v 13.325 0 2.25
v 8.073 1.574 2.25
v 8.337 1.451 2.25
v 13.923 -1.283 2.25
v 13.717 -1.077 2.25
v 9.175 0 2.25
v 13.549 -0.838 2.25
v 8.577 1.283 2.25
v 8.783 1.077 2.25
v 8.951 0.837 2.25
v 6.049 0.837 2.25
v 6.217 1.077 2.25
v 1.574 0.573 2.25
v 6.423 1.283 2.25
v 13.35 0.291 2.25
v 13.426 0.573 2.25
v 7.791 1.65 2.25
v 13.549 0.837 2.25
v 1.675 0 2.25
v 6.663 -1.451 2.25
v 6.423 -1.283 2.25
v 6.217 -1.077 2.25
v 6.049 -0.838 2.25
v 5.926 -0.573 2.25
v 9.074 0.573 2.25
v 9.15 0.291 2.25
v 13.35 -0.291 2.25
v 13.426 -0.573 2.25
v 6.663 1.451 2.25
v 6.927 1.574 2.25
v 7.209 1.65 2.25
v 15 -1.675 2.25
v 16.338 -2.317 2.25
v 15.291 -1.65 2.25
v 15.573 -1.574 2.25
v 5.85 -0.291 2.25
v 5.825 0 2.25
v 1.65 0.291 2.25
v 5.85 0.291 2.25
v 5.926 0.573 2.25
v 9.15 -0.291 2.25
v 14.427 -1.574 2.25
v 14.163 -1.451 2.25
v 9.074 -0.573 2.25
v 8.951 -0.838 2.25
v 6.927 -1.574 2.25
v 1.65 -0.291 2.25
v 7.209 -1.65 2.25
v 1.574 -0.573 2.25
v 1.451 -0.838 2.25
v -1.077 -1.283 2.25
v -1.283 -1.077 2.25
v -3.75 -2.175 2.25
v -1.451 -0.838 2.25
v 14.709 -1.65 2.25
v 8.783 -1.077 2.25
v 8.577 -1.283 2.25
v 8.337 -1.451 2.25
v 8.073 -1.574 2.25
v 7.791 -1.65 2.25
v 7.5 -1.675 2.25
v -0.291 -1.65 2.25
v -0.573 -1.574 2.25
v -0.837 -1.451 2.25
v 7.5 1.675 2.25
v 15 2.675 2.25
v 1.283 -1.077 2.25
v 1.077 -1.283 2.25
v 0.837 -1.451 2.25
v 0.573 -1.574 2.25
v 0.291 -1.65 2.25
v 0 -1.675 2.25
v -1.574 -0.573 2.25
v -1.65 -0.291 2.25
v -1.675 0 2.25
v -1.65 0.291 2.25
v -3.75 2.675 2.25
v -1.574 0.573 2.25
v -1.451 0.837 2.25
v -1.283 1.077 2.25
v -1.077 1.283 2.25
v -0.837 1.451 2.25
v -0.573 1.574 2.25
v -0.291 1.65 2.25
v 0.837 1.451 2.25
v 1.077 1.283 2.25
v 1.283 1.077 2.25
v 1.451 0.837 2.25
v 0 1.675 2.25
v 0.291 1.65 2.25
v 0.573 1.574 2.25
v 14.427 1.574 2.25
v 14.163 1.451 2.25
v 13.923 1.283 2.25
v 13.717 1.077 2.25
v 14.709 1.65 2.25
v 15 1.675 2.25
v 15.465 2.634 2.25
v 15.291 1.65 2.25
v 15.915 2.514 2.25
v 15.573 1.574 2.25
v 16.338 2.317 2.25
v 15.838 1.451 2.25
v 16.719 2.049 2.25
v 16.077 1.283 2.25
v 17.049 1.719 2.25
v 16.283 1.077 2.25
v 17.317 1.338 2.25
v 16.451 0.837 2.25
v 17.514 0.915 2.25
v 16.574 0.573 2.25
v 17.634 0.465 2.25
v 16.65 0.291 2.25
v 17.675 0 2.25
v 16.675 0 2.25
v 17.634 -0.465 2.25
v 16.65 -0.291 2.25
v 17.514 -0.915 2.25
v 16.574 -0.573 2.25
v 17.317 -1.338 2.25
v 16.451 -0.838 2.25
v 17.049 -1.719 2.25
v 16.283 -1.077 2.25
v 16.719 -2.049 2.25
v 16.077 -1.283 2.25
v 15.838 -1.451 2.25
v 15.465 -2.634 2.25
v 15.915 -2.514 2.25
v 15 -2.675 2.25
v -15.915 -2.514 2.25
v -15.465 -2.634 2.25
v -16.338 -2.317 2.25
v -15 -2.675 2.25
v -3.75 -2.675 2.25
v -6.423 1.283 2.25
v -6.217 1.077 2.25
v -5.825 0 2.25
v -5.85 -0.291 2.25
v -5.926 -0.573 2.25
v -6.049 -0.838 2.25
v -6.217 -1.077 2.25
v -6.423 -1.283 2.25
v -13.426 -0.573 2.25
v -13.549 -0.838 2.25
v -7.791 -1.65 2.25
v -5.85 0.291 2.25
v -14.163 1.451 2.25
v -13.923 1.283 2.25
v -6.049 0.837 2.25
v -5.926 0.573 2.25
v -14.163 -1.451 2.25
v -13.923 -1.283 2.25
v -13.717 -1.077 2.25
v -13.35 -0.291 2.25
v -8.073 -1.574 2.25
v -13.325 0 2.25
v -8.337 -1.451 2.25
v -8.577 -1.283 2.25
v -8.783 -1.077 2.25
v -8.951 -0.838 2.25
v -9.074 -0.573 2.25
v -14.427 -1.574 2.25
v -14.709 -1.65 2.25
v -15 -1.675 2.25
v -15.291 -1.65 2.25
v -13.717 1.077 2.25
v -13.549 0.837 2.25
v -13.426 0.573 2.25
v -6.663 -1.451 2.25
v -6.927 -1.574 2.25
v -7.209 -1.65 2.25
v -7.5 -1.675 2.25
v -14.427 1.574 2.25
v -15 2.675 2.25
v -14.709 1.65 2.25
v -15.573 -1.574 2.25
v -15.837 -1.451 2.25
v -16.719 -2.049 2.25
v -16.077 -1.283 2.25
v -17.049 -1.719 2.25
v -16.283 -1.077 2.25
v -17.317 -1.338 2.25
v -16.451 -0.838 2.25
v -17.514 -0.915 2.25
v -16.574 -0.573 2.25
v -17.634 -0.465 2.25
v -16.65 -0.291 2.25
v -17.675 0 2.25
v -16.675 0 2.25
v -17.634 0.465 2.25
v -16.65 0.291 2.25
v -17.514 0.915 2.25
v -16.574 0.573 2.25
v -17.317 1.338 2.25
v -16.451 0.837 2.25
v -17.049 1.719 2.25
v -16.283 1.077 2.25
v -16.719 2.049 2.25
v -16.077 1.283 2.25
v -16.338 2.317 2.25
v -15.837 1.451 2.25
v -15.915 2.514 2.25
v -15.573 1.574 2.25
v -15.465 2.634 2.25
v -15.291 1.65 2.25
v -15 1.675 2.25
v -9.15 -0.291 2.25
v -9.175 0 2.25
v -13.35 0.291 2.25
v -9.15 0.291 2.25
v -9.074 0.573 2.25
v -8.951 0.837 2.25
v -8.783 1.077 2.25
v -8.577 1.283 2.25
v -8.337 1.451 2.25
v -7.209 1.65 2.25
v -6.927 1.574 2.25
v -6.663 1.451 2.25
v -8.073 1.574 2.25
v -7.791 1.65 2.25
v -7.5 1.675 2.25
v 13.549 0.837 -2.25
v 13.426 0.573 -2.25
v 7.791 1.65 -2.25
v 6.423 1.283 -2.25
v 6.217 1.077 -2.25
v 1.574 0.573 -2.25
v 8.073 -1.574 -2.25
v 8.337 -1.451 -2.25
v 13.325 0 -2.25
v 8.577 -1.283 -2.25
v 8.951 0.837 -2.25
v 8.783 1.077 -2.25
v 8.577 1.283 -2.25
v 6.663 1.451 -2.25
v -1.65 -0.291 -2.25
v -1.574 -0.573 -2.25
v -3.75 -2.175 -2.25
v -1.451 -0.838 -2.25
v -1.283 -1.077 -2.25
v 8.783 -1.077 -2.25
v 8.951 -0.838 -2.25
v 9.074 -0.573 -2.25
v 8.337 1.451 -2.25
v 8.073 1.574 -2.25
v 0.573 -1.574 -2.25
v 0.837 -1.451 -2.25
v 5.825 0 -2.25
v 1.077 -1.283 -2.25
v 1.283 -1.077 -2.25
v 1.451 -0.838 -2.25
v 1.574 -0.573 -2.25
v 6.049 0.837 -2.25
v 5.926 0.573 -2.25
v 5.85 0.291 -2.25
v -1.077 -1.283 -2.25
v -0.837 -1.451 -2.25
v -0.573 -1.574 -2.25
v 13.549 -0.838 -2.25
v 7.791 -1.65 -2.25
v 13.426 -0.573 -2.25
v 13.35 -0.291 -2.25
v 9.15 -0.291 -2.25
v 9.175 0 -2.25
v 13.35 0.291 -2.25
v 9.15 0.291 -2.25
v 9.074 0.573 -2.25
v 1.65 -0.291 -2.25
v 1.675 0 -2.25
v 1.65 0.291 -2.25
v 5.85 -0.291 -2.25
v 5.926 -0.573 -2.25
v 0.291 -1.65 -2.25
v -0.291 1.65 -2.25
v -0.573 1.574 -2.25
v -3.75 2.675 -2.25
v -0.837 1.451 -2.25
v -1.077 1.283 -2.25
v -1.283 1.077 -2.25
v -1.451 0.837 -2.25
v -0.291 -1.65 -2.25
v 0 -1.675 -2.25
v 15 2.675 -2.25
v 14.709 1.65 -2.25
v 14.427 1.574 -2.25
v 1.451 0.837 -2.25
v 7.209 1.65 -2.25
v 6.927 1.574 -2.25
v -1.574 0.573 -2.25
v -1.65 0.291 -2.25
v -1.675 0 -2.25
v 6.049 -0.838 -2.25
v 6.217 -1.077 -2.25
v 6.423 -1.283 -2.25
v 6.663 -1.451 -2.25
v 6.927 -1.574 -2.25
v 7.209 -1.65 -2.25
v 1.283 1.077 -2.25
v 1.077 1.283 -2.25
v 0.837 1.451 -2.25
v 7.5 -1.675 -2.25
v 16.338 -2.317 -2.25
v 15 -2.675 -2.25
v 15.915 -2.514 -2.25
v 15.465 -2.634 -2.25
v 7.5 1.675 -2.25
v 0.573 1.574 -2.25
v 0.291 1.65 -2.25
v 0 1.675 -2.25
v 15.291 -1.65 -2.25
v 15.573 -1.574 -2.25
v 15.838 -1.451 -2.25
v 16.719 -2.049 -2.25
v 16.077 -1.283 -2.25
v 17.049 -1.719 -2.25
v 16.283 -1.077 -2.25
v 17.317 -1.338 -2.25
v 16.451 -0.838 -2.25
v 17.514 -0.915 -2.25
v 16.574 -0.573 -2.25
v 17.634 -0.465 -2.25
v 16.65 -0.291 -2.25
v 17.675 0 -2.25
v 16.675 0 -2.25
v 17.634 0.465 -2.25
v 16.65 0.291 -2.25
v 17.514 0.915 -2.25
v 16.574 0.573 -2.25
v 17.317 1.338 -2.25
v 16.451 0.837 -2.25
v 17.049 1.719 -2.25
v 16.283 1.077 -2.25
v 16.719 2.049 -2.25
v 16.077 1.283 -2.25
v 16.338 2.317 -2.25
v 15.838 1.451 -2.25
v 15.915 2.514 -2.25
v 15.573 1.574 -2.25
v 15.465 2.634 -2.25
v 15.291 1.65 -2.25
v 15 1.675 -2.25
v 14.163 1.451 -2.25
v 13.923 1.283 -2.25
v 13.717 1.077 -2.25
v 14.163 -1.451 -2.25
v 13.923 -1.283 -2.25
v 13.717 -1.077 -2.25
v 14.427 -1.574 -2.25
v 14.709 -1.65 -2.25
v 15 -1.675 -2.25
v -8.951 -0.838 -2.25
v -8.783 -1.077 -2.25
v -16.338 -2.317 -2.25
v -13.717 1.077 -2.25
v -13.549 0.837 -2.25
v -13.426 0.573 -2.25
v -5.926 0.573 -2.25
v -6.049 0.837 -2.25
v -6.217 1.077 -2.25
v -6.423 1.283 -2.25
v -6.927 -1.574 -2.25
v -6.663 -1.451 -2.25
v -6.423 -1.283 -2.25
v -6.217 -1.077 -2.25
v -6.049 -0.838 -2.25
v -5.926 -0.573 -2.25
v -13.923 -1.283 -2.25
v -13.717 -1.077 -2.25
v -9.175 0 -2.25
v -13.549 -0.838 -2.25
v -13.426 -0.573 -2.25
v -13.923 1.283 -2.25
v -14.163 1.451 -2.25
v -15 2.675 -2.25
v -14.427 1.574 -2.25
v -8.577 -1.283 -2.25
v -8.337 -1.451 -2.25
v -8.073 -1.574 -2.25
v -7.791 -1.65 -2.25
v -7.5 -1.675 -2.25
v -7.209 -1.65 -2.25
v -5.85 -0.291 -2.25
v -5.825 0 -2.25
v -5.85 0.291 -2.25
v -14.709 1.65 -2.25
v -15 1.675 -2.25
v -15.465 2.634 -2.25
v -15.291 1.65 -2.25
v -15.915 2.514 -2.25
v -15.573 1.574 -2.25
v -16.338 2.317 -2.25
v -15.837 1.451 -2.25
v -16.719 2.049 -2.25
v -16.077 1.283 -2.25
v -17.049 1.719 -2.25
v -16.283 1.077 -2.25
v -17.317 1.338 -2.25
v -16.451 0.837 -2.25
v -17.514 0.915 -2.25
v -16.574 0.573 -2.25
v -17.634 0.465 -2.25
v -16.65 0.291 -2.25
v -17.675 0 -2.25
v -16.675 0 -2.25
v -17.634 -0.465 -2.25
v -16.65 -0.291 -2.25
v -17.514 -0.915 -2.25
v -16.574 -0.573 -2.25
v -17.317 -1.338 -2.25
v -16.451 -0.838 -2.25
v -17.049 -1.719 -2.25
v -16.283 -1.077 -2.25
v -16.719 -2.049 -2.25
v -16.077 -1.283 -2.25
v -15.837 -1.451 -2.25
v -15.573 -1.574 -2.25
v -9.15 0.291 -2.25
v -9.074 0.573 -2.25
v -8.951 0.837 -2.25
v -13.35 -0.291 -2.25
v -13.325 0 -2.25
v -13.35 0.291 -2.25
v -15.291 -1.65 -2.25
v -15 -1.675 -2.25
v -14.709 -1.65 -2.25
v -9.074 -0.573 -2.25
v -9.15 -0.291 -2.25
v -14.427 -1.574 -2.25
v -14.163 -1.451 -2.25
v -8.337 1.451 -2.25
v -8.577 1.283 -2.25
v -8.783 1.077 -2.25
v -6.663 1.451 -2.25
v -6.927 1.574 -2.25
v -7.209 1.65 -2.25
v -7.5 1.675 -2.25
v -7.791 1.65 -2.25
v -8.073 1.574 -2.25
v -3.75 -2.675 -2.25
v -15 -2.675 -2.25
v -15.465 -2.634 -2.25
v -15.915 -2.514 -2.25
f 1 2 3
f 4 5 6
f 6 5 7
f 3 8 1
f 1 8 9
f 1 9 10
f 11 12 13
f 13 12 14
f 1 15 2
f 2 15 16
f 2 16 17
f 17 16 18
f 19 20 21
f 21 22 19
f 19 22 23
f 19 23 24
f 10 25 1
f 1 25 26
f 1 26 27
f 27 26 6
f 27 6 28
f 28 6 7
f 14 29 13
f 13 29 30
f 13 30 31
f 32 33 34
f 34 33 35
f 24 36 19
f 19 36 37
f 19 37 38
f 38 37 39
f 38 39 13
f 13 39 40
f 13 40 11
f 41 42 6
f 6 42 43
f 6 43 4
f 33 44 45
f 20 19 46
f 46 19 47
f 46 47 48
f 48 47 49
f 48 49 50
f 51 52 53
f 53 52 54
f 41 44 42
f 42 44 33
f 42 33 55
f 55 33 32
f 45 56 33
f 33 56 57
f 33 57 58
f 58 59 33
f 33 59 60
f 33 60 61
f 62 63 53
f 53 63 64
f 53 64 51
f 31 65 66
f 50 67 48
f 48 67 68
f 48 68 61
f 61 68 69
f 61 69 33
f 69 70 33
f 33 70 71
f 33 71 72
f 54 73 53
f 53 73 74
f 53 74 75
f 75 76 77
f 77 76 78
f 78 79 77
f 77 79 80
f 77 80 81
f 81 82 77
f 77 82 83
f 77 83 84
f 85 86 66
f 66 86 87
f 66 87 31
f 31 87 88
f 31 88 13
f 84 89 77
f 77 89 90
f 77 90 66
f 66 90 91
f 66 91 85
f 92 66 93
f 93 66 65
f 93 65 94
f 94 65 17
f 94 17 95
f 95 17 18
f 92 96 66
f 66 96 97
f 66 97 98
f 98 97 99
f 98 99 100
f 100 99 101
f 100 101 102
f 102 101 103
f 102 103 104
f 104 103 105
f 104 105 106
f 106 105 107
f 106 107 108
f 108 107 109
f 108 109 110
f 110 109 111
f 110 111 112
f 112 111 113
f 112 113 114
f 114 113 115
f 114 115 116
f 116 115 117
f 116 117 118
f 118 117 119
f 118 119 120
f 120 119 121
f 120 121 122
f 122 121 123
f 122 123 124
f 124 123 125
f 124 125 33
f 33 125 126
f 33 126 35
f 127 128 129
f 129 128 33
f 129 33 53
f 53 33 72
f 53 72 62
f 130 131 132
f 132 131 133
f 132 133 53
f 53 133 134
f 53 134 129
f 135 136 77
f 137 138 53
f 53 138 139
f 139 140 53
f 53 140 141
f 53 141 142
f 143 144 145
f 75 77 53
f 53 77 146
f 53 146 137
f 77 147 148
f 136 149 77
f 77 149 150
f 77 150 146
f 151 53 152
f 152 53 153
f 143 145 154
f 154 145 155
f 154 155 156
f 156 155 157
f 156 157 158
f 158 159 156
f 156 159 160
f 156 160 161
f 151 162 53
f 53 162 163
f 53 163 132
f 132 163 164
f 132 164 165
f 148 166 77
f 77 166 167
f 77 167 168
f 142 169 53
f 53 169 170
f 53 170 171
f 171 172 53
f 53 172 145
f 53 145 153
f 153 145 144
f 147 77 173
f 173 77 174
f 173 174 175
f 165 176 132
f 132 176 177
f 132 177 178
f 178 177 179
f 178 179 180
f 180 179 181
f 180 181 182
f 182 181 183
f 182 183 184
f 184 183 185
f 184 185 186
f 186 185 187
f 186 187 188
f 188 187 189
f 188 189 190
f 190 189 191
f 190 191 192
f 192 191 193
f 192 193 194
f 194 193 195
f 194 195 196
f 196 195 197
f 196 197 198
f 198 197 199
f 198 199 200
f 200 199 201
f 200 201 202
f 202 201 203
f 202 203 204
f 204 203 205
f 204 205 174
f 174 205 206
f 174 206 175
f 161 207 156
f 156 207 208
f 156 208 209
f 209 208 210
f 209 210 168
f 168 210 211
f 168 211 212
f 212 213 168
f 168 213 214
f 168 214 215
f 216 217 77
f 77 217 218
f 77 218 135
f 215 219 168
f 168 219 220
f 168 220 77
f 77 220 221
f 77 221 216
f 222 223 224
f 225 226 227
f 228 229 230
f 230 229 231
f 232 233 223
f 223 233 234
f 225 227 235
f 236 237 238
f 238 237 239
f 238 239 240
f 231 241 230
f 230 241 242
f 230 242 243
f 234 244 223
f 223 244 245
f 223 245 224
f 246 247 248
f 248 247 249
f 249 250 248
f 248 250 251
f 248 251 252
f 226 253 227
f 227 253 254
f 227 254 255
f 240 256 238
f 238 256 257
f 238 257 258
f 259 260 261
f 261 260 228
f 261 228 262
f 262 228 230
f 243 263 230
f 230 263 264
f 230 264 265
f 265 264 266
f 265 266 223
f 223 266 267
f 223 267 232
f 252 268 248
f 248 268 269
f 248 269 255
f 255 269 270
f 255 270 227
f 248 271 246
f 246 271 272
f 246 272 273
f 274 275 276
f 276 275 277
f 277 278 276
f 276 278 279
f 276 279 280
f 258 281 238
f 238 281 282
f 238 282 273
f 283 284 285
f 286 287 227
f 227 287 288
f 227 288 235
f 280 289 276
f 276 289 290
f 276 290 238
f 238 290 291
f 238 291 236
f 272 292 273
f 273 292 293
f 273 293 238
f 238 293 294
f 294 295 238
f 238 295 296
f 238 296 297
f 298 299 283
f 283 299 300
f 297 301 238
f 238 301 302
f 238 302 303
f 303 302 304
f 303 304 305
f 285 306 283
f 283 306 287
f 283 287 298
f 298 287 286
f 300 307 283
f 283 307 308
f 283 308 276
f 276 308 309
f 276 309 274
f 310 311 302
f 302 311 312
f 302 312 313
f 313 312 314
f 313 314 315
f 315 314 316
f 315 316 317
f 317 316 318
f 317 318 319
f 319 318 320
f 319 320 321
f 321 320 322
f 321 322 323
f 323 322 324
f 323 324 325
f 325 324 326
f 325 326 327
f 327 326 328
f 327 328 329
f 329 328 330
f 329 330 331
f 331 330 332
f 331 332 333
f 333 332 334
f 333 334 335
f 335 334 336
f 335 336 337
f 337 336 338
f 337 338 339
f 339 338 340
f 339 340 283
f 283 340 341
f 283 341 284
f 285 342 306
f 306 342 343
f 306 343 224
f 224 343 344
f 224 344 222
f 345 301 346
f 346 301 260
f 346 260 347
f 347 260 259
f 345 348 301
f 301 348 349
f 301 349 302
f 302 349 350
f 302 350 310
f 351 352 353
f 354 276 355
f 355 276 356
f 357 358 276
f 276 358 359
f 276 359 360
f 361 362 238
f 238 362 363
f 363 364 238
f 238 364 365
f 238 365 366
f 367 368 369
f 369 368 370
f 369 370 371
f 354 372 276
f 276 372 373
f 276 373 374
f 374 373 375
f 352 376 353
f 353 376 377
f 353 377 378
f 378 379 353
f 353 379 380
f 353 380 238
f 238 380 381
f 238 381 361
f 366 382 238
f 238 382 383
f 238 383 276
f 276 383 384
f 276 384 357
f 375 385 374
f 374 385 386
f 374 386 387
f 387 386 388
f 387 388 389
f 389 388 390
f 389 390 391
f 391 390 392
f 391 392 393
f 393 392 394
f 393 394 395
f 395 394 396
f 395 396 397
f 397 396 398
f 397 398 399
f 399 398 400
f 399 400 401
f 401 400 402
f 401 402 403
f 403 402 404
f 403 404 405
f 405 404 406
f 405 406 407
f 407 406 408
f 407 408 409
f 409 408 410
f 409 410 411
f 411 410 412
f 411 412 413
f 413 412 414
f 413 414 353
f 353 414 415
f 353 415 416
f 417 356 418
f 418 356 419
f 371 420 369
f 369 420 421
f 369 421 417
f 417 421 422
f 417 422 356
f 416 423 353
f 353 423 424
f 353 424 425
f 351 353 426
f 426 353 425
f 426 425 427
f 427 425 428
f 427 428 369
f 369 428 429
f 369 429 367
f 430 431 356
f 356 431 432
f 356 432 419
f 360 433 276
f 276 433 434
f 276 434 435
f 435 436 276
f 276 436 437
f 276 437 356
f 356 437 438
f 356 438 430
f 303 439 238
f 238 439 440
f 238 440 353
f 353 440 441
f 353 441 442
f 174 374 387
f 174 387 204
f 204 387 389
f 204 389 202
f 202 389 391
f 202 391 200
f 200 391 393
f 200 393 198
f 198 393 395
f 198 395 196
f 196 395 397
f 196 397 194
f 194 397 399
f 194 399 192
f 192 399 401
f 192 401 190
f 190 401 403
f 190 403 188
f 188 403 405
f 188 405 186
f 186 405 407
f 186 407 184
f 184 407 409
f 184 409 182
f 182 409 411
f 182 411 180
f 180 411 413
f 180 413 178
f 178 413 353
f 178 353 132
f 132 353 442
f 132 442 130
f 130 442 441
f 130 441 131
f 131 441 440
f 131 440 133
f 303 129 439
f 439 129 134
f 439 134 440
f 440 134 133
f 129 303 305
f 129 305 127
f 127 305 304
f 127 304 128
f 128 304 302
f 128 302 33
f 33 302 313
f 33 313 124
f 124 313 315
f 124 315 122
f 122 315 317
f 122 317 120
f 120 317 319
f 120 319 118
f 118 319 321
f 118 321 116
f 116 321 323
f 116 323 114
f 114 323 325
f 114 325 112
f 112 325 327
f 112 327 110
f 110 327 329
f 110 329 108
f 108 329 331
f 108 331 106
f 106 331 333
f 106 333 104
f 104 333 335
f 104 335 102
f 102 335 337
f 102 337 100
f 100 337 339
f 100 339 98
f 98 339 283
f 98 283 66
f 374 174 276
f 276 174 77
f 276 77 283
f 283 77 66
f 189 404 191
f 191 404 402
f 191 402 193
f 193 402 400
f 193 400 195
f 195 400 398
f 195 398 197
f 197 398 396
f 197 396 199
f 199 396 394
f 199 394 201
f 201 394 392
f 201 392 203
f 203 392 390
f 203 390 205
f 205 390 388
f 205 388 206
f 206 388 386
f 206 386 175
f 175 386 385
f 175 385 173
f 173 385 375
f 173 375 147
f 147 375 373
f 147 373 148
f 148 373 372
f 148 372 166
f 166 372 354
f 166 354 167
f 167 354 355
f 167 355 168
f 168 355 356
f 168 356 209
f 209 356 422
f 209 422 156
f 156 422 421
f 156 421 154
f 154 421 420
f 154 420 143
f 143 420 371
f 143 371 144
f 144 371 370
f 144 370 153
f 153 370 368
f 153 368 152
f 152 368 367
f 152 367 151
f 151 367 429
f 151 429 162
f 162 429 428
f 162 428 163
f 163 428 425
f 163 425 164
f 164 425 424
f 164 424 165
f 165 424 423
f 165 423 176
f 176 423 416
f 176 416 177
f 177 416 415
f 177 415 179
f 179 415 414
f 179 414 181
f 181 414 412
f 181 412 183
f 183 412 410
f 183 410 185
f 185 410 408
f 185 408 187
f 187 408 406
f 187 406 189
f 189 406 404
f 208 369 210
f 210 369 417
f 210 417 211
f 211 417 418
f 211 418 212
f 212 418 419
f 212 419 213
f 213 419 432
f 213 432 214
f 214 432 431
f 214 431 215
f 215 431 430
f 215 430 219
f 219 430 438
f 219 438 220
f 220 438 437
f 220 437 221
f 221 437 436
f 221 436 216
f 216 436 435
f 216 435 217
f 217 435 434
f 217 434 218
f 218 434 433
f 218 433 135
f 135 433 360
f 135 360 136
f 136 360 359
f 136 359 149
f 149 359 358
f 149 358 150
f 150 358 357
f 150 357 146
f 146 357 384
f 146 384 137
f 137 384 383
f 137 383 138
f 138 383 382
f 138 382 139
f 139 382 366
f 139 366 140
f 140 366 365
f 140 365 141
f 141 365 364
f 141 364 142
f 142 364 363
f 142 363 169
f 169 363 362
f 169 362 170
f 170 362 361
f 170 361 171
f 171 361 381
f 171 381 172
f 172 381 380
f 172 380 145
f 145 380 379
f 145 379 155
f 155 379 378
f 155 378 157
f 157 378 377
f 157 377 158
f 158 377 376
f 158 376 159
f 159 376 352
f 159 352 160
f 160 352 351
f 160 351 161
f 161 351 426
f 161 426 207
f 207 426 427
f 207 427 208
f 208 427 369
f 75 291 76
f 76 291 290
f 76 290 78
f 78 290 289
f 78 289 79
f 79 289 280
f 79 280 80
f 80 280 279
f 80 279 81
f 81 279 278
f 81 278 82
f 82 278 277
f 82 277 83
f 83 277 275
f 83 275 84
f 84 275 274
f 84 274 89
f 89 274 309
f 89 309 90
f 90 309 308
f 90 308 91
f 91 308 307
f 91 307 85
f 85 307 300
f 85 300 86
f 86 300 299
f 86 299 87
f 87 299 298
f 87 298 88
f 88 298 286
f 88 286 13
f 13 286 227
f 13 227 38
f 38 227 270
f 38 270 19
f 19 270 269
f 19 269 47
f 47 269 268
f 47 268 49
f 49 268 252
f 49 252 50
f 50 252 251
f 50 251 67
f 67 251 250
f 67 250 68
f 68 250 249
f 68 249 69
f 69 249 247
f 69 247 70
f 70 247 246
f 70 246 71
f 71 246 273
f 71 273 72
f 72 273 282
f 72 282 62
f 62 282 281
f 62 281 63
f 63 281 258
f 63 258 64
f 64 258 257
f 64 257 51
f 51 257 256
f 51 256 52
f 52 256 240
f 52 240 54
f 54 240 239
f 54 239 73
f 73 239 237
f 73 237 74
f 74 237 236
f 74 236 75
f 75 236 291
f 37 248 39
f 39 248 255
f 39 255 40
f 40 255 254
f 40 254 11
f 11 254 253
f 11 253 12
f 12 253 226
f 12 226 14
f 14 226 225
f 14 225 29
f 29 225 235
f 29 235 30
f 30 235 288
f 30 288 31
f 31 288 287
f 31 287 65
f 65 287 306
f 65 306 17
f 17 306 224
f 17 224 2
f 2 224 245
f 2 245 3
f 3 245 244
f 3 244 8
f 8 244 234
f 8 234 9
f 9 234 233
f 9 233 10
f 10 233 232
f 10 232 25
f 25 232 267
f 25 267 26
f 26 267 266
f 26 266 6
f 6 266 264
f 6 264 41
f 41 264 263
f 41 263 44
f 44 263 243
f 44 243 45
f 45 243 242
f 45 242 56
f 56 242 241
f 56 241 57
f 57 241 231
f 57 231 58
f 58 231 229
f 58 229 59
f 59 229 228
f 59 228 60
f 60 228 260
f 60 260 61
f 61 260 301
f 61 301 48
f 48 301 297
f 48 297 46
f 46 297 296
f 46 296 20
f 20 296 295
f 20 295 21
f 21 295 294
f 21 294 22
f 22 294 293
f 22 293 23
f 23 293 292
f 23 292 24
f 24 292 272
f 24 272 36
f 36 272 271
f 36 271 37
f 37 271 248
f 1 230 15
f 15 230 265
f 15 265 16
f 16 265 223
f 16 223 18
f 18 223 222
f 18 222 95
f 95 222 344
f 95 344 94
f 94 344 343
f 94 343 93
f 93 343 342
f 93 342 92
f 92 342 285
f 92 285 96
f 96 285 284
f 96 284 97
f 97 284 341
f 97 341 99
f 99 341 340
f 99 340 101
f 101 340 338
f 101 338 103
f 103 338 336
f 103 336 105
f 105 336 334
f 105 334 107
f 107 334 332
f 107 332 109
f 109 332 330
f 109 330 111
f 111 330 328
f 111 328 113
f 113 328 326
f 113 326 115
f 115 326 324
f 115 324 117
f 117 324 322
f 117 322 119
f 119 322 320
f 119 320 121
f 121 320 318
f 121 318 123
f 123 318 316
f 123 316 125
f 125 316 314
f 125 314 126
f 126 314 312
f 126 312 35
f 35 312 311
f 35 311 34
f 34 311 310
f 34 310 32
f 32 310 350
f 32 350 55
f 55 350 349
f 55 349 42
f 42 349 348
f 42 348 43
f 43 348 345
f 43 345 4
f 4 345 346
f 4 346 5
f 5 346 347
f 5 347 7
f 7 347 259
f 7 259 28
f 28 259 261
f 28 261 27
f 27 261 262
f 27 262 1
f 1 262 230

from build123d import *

# Parameters (mm, degrees)
SKETCH1_R           = 1.675
BOSS_EXTRUDE1_DEPTH = 2.25


with BuildPart() as part:
    # Sketch1 → Boss-Extrude1 (new body, symmetric)
    with BuildSketch(Plane.XY):
        with BuildLine():
            Line((-15, 2.675), (15, 2.675))
            ThreePointArc((15, 2.675), (17.675, 0), (15, -2.675))
            Line((15, -2.675), (-15, -2.675))
            ThreePointArc((-15, -2.675), (-17.675, 0), (-15, 2.675))
        make_face()
        with Locations((-15, 0)):
            Circle(SKETCH1_R, mode=Mode.SUBTRACT)
        with Locations((-7.5, 0)):
            Circle(SKETCH1_R, mode=Mode.SUBTRACT)
        Circle(SKETCH1_R, mode=Mode.SUBTRACT)
        with Locations((7.5, 0)):
            Circle(SKETCH1_R, mode=Mode.SUBTRACT)
        with Locations((15, 0)):
            Circle(SKETCH1_R, mode=Mode.SUBTRACT)
    extrude(amount=BOSS_EXTRUDE1_DEPTH, both=True)


solid = part.part
